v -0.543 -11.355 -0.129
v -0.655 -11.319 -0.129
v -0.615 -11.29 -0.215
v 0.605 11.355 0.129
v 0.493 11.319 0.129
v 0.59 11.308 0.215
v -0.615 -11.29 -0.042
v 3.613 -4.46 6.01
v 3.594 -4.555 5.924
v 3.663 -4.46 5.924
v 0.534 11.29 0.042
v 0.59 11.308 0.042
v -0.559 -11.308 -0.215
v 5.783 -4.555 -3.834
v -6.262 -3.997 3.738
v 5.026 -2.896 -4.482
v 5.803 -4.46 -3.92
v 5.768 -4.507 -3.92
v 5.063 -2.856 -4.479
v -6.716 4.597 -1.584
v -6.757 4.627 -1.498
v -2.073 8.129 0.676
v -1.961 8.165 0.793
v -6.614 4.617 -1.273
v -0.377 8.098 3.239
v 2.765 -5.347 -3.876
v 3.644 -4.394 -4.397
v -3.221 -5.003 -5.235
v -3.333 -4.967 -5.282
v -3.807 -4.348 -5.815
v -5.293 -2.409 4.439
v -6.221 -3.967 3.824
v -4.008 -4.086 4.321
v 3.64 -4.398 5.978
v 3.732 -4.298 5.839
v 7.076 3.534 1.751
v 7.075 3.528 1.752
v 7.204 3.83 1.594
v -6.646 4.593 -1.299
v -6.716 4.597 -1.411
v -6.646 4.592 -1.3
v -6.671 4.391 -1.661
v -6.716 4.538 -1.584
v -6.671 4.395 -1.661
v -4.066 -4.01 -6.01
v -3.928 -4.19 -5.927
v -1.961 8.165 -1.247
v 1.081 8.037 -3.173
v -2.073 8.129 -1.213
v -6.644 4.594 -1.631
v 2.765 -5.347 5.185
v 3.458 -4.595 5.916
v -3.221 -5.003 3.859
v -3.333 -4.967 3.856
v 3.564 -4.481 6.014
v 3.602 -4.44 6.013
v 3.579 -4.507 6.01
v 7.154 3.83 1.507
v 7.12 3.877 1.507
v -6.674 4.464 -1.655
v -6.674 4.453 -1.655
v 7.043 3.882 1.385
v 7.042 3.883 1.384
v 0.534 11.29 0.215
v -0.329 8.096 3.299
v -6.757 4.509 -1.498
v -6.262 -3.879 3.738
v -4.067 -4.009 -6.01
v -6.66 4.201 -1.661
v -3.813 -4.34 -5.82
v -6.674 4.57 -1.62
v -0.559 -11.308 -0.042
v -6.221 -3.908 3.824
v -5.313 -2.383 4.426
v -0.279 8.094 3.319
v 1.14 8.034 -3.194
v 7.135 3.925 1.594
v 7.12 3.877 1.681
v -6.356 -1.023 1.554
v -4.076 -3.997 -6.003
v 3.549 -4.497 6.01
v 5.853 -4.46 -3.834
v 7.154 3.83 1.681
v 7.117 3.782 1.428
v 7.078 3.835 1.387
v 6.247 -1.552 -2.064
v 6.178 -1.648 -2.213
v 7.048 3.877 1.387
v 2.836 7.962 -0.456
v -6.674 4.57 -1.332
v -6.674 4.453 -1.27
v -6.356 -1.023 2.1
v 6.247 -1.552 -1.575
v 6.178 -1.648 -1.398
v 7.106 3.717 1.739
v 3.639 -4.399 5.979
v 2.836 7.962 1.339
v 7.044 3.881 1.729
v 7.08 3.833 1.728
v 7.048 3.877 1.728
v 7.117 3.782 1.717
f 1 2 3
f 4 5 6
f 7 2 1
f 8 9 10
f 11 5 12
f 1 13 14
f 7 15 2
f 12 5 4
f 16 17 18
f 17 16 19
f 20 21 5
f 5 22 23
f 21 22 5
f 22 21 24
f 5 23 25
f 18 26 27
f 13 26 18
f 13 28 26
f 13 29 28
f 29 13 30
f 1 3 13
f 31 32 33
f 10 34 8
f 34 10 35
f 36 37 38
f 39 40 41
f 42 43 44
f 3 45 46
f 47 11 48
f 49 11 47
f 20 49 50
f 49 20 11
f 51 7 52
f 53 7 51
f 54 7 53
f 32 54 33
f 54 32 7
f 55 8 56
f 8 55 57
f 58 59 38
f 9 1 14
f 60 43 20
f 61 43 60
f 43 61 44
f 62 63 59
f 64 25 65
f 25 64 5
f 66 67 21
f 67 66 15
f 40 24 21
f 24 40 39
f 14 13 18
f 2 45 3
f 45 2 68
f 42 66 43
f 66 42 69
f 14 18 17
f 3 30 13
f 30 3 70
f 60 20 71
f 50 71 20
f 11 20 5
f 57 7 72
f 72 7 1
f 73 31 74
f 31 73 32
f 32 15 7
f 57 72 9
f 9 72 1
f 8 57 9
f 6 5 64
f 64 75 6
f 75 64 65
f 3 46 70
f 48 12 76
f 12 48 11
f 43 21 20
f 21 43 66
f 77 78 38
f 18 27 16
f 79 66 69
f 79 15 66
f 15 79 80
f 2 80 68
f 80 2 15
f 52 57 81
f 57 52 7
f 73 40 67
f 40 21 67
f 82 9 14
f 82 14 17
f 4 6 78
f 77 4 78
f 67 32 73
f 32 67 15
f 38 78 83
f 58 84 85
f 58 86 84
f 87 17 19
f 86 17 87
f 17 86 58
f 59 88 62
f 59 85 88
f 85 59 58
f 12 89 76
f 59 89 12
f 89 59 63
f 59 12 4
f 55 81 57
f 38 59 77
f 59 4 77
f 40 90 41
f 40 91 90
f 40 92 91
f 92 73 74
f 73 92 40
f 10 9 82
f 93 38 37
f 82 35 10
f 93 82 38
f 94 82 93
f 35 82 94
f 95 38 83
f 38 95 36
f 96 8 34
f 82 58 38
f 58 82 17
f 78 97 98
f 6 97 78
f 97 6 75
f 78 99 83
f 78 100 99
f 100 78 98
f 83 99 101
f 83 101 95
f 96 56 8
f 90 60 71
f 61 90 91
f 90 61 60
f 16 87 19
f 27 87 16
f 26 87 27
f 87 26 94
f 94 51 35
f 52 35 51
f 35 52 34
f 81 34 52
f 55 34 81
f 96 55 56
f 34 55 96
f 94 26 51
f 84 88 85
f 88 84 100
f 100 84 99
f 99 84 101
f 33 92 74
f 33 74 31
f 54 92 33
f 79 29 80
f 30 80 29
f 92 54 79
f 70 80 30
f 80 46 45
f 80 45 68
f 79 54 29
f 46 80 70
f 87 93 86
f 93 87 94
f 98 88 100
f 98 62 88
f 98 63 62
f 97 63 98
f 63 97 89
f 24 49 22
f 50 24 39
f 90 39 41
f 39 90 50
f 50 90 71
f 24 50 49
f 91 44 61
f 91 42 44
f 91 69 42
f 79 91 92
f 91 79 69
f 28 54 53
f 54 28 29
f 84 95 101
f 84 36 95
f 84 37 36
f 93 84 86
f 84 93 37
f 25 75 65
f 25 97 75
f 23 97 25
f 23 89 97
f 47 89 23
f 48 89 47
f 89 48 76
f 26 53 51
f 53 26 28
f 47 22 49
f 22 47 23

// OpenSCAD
// Auto-generated OpenSCAD file

    inner_points = 10*[[0.28049451672543285, 0.7867345754664719, -0.4354727591501641], [-0.32516147561098985, -0.49081979957517285, -0.40329143290440955], [0.6146891757185167, -0.15523991749246438, -0.467063652066502], [-0.6593561346040736, 0.45115469338376324, -0.3717005399880716], [0.7016700222556713, 0.3782028432350707, 0.37428832740645657], [-0.1992160562123516, 0.806988584660629, 0.4417202306321675], [0.27340656300831917, -0.5251645186914181, 0.39704396142240617], [-0.6274795154597037, -0.09637877726585975, 0.4644758646481171], [-0.0723068878516462, 0.15388180167658133, -1.1246958983691562], [0.08706866180685142, 0.13498761925367364, 1.1246958983691562]];

    outer_points = 10*[[0.17620995754639138, 0.41987517424097626, -0.6851507748037986], [-0.13338679414034935, 0.41987517424097626, 0.6947585886491126], [-0.6676027533643164, 0.4567802144980838, -0.14978349254876247], [0.7104259167703585, 0.3829701339838687, 0.15939130639407634], [-0.3991593090883643, -0.393779370015213, -0.6019853395350742], [0.5752541082333443, -0.4459709784667395, -0.3833657426306054], [-0.6180772716393863, -0.393779370015213, 0.37375792878529157], [0.35633614568232225, -0.4459709784667395, 0.5923775256897603], [0.05742142630098579, 1.1260182319875078, 0.01288308314360636], [-0.05742142630098579, -1.1260182319875078, -0.01288308314360636]];

    // Convex hull for inner set (I)
    module inner_hull() {
        hull() {
            for (p = inner_points) {
                translate(p) sphere(r=0.1);
            }
        }
    }

    // Convex hull for outer set (O) minus inner hull (O \ I)
    module outer_minus_inner() {
        difference() {
            hull() {
                for (p = outer_points) {
                    translate(p) sphere(r=0.1);
                }
            }
            inner_hull(); // Subtract inner hull
        }
    }

    // Convex hull for outer set (O) minus all translated inner hulls
    module outer_minus_AllTranslationInner() {
        difference() {
            hull() {
                for (p = outer_points) {
                    translate(p) sphere(r=0.1);
                }
            }
            hull() {
                translate([0,0,50]) inner_hull();
                translate([0,0,-50]) inner_hull();
            }; // Subtract translated inner hulls
        }
    }

    // Difference between outer_minus_inner and outer_minus_AllTranslationInner
    module outer_minus_inner_diff() {
        difference() {
            // Outer minus inner
            difference() {
                hull() {
                    for (p = outer_points) {
                        translate(p) sphere(r=0.1);
                    }
                }
                inner_hull();
            }

            // Subtract Outer minus AllTranslationInner
            difference() {
                hull() {
                    for (p = outer_points) {
                        translate(p) sphere(r=0.1);
                    }
                }
                hull() {
                    translate([0,0,50]) inner_hull();
                    translate([0,0,-50]) inner_hull();
                };
            }
        }
    }

    // Rendering all with colors applied
    color([0, 1, 0, 1]) outer_minus_AllTranslationInner(); // Opaque green
    
